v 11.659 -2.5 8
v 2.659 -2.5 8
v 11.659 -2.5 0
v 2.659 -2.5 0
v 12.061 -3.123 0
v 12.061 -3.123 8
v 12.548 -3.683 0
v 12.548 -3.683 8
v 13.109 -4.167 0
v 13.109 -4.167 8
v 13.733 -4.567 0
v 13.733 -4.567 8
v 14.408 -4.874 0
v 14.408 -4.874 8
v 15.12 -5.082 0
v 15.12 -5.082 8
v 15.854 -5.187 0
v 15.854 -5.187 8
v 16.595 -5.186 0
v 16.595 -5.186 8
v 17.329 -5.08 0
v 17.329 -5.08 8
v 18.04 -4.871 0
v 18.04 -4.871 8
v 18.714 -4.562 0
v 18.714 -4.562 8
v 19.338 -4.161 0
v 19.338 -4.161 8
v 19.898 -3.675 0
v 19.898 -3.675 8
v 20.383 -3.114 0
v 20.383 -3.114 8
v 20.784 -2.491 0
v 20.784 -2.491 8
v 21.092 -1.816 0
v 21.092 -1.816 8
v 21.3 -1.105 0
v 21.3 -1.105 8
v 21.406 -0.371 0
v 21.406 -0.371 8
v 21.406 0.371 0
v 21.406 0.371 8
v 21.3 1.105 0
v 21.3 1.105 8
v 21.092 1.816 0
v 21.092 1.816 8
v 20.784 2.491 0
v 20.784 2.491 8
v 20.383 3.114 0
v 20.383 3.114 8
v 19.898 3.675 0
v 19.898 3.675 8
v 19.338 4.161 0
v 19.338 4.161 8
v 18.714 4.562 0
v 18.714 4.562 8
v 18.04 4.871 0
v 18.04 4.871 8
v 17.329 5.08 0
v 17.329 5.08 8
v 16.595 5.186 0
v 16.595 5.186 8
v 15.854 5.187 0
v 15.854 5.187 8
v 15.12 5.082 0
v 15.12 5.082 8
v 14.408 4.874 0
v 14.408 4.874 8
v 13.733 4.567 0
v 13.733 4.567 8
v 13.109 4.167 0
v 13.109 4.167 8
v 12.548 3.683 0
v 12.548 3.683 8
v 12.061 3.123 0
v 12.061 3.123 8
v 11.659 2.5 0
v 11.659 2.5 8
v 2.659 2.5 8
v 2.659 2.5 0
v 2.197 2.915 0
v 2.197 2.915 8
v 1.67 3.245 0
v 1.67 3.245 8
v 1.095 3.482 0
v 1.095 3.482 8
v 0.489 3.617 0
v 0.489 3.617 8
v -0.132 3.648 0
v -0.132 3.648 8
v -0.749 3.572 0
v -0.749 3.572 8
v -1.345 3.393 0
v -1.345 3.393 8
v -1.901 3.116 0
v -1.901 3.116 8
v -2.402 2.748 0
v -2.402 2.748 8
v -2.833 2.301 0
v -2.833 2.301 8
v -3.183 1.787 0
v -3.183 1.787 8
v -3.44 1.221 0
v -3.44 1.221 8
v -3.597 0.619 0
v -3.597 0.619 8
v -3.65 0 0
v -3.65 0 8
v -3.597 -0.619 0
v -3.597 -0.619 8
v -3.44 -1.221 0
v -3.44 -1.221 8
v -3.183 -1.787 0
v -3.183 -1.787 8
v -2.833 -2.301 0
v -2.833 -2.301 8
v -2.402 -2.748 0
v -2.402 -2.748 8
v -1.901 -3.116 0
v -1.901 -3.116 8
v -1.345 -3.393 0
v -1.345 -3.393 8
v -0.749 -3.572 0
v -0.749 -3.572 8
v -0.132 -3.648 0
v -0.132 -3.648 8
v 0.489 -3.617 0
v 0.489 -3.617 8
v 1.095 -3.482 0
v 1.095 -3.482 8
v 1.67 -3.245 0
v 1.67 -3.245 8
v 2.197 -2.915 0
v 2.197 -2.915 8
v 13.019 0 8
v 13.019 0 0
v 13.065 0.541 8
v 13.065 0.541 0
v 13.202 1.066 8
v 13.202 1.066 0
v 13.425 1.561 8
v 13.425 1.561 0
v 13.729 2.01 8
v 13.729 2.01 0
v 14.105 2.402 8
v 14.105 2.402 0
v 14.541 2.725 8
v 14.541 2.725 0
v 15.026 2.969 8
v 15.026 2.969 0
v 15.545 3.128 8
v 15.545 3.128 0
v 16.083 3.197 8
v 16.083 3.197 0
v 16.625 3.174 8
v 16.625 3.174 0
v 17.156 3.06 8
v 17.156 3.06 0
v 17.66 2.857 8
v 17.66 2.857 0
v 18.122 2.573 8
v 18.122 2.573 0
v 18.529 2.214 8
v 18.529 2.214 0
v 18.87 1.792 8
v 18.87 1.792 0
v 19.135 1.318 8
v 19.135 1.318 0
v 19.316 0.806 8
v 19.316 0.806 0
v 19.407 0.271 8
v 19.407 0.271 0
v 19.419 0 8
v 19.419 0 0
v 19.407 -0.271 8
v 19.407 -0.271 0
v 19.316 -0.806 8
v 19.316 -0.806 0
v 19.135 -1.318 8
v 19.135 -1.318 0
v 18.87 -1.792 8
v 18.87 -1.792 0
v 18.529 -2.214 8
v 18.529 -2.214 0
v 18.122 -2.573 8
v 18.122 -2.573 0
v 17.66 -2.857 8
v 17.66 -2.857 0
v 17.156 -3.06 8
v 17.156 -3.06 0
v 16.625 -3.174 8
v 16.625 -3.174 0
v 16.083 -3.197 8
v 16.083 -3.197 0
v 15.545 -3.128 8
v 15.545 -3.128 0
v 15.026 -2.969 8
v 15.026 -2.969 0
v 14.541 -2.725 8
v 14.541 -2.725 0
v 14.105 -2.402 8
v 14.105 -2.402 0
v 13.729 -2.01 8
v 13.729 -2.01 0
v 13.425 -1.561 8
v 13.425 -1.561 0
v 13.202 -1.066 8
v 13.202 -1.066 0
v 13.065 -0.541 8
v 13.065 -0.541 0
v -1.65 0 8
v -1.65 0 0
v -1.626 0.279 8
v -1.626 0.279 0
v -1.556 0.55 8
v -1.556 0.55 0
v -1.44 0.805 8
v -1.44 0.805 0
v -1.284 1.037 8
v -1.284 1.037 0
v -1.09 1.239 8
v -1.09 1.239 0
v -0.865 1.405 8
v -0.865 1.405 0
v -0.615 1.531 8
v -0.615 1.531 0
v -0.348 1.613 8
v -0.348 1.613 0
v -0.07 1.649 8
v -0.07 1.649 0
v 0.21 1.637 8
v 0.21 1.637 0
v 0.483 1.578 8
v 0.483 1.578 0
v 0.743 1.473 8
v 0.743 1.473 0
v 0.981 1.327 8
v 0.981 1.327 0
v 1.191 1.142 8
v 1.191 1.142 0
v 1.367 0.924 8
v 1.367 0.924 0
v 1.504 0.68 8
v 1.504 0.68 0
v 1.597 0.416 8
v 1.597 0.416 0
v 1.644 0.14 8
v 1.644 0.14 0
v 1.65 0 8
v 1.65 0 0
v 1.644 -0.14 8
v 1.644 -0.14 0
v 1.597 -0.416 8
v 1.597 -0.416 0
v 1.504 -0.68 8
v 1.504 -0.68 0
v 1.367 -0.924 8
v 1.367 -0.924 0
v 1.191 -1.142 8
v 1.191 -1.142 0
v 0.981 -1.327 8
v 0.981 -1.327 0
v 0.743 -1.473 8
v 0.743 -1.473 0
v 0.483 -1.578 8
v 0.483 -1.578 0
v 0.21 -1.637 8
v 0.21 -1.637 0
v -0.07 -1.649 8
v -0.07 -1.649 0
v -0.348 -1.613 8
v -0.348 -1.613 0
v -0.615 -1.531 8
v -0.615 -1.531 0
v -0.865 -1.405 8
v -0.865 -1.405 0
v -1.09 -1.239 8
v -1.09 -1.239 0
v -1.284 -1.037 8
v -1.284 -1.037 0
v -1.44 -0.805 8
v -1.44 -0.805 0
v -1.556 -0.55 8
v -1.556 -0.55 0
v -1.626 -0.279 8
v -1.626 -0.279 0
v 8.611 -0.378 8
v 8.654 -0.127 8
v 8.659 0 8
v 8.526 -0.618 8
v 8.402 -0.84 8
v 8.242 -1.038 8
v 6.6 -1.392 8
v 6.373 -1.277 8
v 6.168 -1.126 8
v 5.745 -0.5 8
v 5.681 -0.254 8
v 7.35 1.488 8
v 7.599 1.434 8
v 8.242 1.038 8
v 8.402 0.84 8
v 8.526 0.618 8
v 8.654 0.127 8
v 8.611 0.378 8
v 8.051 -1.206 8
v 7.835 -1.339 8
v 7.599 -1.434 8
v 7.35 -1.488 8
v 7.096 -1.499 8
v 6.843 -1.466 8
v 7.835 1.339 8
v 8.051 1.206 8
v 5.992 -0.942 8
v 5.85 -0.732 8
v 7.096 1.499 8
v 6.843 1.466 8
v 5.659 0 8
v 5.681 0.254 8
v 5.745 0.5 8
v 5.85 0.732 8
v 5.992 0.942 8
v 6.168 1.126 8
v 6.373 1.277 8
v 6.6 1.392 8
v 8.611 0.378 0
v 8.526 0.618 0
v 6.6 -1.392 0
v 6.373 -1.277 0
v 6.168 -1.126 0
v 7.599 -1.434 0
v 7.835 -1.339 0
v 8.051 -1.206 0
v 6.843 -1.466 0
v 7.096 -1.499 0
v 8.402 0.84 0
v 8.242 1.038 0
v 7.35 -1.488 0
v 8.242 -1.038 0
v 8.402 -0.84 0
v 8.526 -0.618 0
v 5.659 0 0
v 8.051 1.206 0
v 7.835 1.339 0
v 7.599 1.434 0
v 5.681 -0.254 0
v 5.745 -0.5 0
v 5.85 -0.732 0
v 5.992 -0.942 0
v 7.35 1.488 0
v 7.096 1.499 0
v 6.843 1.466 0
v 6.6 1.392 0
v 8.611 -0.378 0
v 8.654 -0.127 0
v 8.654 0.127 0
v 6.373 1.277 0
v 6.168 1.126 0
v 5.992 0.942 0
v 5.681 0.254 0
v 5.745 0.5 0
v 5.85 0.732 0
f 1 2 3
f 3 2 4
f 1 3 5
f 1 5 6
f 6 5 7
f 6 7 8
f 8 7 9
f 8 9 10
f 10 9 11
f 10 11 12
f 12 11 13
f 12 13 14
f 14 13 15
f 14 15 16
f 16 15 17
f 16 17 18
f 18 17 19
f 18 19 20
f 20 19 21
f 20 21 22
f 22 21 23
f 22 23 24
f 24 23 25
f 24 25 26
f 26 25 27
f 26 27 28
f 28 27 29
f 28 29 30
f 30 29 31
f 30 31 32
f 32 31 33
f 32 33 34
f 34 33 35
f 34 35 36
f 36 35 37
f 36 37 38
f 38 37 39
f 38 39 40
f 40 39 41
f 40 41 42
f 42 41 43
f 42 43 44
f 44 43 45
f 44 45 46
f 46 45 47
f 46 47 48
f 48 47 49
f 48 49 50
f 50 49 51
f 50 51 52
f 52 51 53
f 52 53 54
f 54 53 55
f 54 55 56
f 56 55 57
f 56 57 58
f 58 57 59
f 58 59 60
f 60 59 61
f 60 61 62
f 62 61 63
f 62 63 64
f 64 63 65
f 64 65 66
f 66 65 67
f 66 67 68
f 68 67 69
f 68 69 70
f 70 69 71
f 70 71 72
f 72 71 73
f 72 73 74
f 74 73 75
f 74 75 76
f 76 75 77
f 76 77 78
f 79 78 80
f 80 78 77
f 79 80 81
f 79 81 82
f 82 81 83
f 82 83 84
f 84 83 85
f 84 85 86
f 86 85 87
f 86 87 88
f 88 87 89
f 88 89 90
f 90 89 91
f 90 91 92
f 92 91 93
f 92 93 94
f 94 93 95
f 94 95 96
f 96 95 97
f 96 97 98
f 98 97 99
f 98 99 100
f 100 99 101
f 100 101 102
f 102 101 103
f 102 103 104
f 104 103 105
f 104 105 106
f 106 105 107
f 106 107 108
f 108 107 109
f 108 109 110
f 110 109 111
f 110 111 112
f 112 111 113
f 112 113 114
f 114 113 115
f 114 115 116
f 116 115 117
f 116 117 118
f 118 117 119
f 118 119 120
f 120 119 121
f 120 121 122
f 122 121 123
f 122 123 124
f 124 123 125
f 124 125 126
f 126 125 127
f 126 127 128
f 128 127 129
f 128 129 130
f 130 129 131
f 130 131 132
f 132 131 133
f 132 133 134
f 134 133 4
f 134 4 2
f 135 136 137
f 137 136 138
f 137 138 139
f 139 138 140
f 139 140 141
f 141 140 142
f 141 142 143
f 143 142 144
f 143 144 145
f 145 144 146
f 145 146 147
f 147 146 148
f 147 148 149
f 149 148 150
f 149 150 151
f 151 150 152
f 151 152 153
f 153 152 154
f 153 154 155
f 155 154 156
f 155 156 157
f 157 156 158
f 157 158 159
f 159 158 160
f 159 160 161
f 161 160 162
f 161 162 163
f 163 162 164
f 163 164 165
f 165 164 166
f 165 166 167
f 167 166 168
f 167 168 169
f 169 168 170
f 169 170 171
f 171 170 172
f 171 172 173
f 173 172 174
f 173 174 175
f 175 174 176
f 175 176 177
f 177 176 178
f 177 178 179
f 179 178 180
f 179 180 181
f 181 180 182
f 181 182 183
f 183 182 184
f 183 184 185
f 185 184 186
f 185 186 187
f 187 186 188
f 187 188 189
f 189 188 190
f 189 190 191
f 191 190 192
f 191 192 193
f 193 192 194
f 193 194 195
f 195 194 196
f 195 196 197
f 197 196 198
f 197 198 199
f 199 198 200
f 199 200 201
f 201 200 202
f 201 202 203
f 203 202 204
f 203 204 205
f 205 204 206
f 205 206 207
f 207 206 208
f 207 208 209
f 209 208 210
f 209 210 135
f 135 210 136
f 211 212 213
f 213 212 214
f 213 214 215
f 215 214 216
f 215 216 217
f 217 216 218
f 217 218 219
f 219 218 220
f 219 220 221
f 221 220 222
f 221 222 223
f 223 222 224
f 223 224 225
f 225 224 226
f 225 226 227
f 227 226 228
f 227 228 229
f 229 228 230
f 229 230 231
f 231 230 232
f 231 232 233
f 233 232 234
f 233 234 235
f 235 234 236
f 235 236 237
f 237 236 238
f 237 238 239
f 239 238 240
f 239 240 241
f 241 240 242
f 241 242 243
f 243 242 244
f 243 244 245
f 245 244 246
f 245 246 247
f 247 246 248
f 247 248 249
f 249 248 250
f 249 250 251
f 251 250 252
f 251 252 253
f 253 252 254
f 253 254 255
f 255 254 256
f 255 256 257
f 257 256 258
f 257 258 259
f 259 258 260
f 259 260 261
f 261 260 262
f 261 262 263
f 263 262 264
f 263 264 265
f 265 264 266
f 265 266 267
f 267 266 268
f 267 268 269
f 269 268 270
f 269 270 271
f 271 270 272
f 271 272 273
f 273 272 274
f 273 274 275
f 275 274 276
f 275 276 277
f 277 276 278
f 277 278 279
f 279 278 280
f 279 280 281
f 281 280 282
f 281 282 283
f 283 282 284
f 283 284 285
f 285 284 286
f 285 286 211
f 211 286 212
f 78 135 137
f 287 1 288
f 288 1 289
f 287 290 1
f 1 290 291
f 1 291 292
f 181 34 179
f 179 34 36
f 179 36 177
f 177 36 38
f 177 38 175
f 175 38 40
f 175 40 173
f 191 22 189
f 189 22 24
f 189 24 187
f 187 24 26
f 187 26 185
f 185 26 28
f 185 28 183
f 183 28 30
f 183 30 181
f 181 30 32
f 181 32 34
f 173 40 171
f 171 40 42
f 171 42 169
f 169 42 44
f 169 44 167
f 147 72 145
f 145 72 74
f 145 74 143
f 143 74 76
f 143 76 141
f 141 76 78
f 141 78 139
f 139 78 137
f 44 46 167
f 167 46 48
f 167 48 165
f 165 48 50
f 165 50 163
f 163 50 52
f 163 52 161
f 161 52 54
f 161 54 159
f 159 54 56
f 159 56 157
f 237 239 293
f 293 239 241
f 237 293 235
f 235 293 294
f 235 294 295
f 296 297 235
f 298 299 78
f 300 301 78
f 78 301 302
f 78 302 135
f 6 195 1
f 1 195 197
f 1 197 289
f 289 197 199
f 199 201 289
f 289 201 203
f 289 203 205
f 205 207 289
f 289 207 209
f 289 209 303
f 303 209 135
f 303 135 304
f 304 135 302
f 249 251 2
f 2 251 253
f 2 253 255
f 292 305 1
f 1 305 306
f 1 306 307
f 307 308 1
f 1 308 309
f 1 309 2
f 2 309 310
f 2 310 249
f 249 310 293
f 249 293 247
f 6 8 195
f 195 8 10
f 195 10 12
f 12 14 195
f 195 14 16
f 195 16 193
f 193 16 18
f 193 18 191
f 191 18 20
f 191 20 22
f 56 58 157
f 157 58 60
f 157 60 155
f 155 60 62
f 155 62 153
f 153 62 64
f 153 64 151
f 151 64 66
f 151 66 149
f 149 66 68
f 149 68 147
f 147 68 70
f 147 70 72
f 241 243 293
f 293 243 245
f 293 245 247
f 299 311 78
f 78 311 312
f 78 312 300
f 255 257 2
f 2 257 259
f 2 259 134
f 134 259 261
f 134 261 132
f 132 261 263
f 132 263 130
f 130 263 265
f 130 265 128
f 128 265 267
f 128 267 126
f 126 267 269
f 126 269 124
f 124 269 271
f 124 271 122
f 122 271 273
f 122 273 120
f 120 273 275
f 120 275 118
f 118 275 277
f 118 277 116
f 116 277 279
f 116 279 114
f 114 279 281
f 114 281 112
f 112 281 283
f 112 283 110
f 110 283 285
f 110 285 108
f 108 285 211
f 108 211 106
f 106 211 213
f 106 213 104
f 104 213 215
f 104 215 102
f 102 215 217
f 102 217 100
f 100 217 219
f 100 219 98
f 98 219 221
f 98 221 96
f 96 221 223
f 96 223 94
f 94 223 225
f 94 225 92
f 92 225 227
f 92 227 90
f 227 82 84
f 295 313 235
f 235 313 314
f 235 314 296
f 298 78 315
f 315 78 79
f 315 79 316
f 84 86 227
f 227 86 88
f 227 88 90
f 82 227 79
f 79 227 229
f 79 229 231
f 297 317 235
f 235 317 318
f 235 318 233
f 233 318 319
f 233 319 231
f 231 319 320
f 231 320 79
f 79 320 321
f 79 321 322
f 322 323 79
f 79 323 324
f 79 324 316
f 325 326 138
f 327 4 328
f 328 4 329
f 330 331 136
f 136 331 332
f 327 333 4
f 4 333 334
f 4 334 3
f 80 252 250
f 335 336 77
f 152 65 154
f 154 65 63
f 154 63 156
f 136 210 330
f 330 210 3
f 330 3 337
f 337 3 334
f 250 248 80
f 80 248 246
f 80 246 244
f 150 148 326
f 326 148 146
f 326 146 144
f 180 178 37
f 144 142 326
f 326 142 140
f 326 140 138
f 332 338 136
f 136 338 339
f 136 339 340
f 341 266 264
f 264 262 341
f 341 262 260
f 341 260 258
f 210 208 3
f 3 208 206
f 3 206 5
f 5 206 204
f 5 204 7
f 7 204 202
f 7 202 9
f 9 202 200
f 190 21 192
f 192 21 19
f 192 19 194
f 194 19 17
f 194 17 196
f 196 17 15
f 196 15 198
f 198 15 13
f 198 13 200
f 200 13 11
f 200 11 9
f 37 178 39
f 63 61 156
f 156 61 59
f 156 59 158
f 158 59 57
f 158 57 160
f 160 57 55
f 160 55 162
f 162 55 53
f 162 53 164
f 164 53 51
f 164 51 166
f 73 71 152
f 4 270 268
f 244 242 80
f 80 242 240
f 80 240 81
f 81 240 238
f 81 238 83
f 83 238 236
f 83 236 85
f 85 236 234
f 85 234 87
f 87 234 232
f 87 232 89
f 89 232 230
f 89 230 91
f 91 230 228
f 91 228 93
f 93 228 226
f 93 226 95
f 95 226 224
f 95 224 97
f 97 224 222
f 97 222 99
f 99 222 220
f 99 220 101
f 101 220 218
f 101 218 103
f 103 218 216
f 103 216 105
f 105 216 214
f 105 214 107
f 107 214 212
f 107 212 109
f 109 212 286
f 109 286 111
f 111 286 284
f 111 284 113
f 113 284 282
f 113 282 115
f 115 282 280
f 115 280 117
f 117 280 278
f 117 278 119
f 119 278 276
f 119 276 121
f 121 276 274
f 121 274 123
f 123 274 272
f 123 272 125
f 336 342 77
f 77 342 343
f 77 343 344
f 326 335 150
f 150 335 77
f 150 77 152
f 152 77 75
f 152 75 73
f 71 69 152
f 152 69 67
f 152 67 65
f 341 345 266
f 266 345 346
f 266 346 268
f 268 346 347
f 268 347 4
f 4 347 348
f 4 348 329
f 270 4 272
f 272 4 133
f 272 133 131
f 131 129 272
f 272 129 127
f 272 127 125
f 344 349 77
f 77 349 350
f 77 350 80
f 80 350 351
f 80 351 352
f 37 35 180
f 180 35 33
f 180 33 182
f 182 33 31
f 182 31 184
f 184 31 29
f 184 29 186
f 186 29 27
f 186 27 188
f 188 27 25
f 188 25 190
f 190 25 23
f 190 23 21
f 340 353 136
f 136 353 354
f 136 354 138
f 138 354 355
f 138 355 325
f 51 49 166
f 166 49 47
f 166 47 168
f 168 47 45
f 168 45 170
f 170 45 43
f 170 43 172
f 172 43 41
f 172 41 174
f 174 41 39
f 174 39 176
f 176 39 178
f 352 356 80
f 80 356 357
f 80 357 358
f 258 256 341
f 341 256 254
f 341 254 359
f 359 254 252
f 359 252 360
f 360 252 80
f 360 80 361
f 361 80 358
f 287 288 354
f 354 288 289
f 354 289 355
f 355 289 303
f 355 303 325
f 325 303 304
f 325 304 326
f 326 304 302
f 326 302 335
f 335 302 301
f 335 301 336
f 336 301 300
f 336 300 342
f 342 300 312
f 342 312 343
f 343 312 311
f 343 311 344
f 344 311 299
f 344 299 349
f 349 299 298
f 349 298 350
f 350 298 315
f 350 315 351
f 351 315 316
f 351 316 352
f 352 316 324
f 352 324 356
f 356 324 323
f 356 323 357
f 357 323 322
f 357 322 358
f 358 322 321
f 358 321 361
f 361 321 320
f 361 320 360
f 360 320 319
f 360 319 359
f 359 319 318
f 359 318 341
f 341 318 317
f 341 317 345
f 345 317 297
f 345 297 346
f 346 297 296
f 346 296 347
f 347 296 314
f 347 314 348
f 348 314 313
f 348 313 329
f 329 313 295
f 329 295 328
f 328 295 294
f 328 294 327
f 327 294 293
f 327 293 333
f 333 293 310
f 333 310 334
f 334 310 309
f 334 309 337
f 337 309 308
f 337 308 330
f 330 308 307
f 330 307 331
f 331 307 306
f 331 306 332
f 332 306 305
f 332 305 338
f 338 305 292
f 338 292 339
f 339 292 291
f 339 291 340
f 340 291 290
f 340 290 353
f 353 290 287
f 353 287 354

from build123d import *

# Parameters (mm, degrees)
CROQUIS1_R              = 3.2
CROQUIS1_R_2            = 1.65
SALIENTE_EXTRUIR1_DEPTH = 8
CROQUIS3_R              = 1.5
CORTAR_EXTRUIR1_DEPTH   = 21.5


with BuildPart() as part:
    # Croquis1 → Saliente-Extruir1 (new body)
    with BuildSketch(Plane.XY):
        with BuildLine():
            Line((11.659417229, 2.5), (2.659417229, 2.5))
            ThreePointArc((2.659417229, 2.5), (-3.65, 0), (2.659417229, -2.5))
            Line((2.659417229, -2.5), (11.659417229, -2.5))
            ThreePointArc((11.659417229, -2.5), (21.419022475, 0), (11.659417229, 2.5))
        make_face()
        with Locations((16.219022475, 0)):
            Circle(CROQUIS1_R, mode=Mode.SUBTRACT)
        Circle(CROQUIS1_R_2, mode=Mode.SUBTRACT)
    extrude(amount=SALIENTE_EXTRUIR1_DEPTH)

    # Croquis3 → Cortar-Extruir1 (cut)
    with BuildSketch(Plane(origin=(0, 0, 0), x_dir=(-1, 0, 0), z_dir=(0, 0, -1))):
        with Locations((-7.159417229, 0)):
            Circle(CROQUIS3_R)
    extrude(amount=-CORTAR_EXTRUIR1_DEPTH, mode=Mode.SUBTRACT)


solid = part.part
